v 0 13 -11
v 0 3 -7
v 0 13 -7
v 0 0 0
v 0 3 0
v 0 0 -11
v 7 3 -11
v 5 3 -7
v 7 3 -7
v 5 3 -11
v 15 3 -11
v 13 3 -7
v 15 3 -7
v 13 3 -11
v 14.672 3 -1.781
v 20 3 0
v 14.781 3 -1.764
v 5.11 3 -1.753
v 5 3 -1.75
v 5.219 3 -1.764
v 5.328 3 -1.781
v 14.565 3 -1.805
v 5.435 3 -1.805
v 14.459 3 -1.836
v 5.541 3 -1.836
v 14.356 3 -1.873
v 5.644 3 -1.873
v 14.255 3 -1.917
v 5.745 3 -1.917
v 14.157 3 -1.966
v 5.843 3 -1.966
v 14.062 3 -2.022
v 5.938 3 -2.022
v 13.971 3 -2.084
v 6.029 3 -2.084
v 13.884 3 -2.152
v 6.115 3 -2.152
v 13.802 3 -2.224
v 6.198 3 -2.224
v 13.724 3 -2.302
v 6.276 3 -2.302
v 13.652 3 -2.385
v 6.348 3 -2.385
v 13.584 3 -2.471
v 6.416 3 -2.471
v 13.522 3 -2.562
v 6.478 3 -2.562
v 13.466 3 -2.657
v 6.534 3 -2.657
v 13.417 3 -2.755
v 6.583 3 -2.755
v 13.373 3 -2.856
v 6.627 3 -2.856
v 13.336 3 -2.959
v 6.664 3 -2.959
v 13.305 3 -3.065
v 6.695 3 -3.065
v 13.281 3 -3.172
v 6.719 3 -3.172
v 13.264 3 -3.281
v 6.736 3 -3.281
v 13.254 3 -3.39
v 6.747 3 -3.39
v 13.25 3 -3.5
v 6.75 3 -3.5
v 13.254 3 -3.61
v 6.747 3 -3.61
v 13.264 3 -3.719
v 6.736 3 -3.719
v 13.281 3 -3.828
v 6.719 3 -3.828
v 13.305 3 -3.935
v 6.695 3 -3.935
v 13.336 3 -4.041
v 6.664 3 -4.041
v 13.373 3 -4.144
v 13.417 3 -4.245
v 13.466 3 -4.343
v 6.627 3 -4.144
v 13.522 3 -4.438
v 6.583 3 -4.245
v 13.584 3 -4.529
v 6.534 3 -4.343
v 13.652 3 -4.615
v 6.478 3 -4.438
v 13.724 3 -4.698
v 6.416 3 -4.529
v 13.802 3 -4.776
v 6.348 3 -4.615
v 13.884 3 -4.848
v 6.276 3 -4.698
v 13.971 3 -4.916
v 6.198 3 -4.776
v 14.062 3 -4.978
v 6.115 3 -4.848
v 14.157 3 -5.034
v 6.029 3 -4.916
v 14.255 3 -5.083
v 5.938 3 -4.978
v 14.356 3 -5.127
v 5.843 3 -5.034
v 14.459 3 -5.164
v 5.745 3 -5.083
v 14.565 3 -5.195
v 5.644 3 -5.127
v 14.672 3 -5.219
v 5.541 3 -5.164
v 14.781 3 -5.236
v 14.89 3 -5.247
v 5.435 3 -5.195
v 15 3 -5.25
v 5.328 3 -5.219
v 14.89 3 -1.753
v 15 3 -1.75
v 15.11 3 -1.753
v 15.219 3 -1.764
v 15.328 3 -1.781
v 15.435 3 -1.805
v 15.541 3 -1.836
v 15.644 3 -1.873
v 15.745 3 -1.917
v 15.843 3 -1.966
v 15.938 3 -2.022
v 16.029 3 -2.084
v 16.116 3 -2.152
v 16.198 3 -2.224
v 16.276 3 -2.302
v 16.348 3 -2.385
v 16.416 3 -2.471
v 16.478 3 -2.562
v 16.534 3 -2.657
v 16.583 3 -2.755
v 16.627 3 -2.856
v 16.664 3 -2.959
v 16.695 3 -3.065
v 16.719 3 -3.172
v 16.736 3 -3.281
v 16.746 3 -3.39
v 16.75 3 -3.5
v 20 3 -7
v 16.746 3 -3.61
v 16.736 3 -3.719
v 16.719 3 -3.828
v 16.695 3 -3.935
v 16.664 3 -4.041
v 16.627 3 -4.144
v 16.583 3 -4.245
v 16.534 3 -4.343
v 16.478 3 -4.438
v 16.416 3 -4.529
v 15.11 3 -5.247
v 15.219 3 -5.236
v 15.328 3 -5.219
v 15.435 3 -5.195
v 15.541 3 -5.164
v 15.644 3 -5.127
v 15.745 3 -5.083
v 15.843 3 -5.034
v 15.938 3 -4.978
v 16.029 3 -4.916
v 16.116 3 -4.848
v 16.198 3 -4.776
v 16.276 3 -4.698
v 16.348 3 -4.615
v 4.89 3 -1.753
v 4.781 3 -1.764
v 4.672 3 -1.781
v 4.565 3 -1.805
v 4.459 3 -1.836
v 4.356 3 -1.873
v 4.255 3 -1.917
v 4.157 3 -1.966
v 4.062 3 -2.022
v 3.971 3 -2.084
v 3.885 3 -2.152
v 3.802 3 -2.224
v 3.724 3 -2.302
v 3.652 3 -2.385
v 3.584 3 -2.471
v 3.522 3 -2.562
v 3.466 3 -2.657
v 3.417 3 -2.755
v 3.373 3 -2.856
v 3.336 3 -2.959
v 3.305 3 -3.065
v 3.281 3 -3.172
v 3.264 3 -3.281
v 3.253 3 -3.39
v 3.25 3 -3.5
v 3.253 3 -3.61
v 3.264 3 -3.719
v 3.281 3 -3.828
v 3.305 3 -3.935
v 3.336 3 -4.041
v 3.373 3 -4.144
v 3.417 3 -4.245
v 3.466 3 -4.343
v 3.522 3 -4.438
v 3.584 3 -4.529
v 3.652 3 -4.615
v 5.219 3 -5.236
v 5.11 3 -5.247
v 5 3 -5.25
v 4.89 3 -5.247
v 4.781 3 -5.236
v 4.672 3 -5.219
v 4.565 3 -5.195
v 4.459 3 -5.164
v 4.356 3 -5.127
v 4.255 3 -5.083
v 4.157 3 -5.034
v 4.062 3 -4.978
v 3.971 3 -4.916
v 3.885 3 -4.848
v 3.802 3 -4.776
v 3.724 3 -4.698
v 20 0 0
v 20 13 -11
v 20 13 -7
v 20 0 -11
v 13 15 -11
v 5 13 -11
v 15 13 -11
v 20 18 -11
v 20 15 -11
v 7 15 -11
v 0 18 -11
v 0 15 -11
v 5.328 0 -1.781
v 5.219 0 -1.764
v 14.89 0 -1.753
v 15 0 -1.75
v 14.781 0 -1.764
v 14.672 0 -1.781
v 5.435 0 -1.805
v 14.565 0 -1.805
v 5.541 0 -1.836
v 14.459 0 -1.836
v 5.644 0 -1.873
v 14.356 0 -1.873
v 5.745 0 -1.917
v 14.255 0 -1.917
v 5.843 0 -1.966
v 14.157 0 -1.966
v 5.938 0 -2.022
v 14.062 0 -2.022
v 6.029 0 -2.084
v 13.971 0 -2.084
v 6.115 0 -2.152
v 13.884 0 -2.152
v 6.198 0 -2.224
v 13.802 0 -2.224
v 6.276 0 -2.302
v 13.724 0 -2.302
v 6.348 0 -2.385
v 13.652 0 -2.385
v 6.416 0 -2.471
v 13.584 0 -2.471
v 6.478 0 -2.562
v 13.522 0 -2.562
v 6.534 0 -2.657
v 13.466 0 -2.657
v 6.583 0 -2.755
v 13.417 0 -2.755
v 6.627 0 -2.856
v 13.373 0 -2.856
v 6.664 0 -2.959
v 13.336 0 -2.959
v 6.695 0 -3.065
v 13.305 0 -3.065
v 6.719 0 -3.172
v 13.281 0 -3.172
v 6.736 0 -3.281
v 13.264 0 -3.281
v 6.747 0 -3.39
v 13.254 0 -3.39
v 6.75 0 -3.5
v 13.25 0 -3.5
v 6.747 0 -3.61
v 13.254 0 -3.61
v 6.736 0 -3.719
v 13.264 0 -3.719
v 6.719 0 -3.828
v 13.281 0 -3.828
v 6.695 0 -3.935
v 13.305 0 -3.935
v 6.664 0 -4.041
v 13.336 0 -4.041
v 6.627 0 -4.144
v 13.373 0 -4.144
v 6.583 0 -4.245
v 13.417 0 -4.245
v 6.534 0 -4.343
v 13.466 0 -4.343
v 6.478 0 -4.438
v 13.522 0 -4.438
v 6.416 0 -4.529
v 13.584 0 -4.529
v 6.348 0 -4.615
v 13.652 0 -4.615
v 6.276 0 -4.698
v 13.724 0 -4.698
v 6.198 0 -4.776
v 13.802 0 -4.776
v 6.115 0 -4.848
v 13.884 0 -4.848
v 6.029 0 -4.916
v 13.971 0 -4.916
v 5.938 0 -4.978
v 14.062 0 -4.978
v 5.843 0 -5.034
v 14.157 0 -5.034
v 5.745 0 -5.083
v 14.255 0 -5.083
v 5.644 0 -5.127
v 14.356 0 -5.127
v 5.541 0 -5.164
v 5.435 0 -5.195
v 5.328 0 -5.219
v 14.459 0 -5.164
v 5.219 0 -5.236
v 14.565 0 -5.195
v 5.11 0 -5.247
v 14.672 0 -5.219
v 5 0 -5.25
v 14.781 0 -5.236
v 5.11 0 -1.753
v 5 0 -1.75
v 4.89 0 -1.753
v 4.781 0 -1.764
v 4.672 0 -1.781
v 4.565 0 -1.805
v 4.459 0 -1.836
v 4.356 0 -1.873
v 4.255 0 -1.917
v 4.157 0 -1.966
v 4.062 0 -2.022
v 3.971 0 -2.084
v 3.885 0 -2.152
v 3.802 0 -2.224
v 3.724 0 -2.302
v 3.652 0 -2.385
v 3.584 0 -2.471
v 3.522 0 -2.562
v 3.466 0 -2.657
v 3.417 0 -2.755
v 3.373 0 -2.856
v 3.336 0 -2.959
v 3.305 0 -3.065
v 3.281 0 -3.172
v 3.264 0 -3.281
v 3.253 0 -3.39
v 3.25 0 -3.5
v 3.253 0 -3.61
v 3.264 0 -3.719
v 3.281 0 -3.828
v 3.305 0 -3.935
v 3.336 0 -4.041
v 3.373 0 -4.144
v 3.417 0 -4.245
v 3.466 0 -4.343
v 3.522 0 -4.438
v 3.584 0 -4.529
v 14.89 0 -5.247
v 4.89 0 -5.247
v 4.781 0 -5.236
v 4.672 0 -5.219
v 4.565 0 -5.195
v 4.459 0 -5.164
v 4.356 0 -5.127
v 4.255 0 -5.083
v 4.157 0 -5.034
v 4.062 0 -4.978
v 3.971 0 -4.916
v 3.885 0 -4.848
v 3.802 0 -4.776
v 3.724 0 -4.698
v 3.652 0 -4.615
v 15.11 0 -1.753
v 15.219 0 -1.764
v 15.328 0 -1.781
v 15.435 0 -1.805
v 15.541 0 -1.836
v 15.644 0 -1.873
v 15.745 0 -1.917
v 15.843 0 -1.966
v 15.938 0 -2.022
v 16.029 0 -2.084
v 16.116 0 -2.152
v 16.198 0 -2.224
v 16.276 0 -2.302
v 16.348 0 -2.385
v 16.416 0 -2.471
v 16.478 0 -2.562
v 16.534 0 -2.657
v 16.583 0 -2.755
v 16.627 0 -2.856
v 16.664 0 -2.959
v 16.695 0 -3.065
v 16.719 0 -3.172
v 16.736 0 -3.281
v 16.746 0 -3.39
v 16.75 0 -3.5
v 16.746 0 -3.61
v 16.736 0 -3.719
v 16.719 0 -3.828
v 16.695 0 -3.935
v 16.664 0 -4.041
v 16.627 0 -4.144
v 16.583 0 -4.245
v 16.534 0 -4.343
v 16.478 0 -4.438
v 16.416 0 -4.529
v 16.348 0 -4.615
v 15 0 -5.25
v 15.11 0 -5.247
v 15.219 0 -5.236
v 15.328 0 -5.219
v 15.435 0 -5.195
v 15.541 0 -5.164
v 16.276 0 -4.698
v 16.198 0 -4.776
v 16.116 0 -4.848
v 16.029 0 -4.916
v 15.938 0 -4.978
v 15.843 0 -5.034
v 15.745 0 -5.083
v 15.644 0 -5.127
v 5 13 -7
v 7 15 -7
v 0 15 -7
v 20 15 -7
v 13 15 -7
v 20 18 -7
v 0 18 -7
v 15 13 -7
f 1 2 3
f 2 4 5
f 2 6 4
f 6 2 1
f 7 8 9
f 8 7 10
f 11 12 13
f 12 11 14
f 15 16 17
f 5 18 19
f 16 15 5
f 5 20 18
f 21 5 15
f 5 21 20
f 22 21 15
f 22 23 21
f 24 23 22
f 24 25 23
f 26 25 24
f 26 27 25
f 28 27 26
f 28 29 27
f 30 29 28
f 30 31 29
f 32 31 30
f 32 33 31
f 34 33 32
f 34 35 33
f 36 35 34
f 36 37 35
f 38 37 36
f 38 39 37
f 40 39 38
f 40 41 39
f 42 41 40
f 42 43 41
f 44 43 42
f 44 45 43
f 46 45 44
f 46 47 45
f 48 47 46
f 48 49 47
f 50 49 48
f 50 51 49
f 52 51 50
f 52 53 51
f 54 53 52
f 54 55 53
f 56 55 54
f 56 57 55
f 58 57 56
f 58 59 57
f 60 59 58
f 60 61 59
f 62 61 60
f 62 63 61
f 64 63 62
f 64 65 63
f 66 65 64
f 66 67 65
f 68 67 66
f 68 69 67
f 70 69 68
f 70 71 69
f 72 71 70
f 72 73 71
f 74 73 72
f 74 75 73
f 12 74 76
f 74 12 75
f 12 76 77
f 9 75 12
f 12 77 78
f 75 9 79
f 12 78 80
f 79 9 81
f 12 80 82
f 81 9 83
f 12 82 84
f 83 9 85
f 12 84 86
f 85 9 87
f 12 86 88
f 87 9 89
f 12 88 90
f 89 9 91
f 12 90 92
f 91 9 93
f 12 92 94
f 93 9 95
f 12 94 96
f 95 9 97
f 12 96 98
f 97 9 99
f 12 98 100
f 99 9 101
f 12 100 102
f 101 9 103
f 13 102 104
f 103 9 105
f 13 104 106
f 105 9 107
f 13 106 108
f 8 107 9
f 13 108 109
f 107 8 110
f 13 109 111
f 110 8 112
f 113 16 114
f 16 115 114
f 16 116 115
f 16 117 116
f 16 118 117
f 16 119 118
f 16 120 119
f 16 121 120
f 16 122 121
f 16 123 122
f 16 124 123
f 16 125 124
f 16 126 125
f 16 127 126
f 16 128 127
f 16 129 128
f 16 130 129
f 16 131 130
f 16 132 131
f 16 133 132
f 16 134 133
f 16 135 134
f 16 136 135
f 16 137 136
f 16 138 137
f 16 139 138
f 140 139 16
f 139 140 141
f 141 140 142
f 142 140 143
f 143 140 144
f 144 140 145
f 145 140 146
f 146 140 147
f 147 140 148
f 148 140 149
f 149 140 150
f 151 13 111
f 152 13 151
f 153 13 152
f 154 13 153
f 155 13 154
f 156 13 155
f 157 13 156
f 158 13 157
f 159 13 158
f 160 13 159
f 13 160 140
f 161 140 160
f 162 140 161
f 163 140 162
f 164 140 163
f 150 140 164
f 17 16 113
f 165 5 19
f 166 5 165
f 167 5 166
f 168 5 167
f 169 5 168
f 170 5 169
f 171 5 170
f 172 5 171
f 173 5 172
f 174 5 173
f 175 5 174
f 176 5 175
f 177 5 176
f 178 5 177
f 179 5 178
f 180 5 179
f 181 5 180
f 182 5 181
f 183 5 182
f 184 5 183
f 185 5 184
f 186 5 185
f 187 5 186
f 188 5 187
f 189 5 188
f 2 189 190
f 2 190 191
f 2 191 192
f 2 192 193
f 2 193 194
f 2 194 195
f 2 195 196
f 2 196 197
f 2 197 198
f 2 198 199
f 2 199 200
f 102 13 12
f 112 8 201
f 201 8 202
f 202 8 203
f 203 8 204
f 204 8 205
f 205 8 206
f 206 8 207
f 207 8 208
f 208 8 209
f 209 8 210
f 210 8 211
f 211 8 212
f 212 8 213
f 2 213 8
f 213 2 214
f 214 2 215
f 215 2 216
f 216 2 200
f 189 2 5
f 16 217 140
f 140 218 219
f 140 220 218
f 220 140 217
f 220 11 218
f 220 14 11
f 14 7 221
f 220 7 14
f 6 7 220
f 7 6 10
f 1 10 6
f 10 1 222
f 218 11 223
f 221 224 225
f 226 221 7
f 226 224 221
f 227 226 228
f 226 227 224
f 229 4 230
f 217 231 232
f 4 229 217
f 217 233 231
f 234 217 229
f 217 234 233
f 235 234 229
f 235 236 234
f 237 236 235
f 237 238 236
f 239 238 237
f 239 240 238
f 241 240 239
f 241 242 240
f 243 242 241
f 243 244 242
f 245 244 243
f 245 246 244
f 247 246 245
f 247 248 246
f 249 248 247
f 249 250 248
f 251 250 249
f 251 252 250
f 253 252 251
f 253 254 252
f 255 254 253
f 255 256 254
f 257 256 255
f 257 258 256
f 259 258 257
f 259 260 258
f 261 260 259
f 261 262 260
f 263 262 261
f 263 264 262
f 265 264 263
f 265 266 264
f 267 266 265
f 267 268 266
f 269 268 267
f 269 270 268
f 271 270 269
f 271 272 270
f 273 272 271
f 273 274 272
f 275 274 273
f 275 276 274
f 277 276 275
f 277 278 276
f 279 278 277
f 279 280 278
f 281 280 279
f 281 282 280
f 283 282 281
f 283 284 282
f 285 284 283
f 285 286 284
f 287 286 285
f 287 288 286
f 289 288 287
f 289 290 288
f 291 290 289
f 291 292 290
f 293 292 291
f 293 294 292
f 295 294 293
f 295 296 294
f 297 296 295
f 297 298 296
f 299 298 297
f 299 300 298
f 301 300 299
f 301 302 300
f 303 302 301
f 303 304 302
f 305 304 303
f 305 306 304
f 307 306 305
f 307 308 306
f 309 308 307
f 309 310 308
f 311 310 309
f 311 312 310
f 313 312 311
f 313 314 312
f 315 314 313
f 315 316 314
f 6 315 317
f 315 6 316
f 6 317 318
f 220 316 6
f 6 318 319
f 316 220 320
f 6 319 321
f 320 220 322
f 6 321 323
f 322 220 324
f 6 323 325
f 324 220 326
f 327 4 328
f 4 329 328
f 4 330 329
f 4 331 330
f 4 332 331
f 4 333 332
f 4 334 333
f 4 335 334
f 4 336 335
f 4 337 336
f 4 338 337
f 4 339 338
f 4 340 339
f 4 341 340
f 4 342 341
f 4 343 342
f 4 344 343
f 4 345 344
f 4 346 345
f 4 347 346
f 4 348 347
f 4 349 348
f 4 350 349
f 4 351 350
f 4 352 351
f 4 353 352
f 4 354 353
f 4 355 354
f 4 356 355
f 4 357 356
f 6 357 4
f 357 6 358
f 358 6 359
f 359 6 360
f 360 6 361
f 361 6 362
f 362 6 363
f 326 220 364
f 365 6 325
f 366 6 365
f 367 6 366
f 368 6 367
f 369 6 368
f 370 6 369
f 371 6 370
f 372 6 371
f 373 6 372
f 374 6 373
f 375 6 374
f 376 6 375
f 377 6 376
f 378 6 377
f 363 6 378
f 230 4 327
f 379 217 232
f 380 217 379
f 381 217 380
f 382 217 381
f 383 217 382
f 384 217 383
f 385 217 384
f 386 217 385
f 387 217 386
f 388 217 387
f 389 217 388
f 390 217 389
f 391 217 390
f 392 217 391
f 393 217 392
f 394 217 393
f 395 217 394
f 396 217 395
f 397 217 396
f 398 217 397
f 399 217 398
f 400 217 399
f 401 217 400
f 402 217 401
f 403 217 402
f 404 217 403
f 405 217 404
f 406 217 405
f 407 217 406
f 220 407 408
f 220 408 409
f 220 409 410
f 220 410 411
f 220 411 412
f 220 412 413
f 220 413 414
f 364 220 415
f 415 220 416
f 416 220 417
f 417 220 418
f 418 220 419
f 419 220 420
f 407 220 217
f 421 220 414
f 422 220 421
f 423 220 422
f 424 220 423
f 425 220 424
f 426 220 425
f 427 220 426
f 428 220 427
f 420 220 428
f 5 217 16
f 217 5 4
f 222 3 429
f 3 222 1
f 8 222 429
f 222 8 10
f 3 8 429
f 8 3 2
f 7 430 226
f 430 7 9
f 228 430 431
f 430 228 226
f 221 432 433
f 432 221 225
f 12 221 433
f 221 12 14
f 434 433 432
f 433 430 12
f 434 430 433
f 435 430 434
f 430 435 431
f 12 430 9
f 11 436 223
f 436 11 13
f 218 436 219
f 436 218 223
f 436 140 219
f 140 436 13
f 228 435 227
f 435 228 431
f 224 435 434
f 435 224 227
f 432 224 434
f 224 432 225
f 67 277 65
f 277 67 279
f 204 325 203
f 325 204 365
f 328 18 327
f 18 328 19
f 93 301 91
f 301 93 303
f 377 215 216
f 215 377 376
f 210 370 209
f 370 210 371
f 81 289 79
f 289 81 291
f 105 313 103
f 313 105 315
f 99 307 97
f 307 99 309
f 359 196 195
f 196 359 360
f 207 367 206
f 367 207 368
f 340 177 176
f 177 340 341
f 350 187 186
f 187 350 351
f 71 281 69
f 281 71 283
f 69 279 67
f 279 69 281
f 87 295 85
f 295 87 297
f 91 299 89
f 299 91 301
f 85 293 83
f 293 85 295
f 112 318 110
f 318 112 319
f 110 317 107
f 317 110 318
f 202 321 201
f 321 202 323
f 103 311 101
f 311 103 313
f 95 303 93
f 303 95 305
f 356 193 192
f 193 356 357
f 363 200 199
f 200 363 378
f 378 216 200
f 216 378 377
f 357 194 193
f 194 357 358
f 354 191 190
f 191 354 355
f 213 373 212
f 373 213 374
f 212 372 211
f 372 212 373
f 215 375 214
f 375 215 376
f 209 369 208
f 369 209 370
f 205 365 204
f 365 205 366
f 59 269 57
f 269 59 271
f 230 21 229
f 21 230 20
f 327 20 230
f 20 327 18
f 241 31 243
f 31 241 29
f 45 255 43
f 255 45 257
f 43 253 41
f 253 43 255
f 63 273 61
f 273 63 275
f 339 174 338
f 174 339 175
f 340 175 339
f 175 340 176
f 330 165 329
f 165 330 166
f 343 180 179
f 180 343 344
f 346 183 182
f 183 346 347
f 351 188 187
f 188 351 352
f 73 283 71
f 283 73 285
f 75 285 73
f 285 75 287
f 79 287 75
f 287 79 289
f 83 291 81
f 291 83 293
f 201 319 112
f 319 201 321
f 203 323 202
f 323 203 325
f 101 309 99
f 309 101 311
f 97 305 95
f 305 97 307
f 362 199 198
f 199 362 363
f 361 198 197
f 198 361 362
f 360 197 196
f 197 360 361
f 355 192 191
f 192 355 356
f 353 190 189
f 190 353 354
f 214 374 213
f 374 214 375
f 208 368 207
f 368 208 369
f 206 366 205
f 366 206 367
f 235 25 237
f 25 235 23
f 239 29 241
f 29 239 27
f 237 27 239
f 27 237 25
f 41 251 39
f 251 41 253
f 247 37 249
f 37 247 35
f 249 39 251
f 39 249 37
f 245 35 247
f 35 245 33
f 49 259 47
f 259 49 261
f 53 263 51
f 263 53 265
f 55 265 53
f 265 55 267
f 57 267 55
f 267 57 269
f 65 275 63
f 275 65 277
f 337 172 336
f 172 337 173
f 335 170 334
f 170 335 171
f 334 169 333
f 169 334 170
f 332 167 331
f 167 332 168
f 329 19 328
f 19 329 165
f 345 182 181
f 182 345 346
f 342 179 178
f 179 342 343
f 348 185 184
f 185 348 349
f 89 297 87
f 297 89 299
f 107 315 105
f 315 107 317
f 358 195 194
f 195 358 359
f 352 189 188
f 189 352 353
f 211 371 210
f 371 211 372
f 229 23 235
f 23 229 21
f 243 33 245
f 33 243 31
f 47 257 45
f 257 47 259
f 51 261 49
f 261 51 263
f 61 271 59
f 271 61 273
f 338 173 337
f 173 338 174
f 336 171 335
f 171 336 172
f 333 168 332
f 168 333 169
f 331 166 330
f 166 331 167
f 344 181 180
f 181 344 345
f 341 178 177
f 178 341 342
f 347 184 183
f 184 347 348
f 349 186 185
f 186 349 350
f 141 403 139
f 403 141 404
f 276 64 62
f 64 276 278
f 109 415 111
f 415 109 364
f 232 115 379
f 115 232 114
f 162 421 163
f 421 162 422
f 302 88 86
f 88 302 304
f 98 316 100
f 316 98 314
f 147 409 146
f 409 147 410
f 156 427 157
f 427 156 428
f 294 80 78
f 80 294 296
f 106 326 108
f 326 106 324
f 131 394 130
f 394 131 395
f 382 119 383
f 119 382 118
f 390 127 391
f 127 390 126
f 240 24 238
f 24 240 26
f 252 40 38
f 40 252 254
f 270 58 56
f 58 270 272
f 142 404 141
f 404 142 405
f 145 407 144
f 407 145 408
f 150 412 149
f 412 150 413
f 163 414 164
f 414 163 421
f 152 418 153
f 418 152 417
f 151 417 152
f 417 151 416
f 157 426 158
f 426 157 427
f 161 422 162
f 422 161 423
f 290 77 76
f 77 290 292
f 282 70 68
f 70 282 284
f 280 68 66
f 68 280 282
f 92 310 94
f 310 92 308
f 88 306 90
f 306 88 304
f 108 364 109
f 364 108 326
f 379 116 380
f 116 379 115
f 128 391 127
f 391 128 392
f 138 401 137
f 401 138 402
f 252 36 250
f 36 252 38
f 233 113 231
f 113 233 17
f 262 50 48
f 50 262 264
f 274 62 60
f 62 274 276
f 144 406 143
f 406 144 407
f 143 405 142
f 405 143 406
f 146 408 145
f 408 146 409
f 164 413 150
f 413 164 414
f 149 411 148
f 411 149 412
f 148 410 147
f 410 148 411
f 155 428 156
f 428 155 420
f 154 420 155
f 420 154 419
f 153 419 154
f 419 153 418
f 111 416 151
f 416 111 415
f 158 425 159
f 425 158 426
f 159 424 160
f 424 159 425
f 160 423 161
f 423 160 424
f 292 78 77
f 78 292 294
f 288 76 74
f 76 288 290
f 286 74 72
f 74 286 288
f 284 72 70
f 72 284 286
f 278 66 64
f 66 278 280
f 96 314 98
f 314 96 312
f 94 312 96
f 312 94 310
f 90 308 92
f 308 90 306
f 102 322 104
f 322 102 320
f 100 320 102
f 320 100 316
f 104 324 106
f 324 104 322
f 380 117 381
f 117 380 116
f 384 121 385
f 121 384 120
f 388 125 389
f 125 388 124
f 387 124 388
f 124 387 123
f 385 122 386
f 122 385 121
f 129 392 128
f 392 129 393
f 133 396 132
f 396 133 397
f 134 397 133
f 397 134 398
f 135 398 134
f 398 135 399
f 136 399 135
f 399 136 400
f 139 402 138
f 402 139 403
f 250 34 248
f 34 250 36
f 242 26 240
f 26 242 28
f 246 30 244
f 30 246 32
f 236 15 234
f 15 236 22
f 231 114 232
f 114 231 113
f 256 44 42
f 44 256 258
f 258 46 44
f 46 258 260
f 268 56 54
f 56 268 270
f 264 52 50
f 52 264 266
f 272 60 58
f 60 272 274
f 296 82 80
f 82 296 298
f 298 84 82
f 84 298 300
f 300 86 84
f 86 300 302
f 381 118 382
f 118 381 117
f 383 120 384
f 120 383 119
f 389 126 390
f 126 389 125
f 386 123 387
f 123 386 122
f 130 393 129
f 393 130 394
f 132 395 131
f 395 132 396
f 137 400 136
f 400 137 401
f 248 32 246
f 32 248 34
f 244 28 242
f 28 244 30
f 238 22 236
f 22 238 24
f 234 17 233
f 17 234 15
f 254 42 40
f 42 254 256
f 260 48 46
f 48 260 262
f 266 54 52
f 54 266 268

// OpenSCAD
$fn=100;

module drzak() {
    difference() {
        union() {
            cube([20,11,3]);
            translate([0,7,0]) cube([5,4,13]);
            translate([7,7,0]) cube([6,4,15]);
            translate([15,7,0]) cube([5,4,13]);
            translate([0,7,15]) cube([20,4,3]);
        }
        
        translate([5,3.5,-1]) cylinder(d=3.5,h=5);
        translate([15,3.5,-1]) cylinder(d=3.5,h=5);
    }
}

rotate([270,0,0]) drzak();
